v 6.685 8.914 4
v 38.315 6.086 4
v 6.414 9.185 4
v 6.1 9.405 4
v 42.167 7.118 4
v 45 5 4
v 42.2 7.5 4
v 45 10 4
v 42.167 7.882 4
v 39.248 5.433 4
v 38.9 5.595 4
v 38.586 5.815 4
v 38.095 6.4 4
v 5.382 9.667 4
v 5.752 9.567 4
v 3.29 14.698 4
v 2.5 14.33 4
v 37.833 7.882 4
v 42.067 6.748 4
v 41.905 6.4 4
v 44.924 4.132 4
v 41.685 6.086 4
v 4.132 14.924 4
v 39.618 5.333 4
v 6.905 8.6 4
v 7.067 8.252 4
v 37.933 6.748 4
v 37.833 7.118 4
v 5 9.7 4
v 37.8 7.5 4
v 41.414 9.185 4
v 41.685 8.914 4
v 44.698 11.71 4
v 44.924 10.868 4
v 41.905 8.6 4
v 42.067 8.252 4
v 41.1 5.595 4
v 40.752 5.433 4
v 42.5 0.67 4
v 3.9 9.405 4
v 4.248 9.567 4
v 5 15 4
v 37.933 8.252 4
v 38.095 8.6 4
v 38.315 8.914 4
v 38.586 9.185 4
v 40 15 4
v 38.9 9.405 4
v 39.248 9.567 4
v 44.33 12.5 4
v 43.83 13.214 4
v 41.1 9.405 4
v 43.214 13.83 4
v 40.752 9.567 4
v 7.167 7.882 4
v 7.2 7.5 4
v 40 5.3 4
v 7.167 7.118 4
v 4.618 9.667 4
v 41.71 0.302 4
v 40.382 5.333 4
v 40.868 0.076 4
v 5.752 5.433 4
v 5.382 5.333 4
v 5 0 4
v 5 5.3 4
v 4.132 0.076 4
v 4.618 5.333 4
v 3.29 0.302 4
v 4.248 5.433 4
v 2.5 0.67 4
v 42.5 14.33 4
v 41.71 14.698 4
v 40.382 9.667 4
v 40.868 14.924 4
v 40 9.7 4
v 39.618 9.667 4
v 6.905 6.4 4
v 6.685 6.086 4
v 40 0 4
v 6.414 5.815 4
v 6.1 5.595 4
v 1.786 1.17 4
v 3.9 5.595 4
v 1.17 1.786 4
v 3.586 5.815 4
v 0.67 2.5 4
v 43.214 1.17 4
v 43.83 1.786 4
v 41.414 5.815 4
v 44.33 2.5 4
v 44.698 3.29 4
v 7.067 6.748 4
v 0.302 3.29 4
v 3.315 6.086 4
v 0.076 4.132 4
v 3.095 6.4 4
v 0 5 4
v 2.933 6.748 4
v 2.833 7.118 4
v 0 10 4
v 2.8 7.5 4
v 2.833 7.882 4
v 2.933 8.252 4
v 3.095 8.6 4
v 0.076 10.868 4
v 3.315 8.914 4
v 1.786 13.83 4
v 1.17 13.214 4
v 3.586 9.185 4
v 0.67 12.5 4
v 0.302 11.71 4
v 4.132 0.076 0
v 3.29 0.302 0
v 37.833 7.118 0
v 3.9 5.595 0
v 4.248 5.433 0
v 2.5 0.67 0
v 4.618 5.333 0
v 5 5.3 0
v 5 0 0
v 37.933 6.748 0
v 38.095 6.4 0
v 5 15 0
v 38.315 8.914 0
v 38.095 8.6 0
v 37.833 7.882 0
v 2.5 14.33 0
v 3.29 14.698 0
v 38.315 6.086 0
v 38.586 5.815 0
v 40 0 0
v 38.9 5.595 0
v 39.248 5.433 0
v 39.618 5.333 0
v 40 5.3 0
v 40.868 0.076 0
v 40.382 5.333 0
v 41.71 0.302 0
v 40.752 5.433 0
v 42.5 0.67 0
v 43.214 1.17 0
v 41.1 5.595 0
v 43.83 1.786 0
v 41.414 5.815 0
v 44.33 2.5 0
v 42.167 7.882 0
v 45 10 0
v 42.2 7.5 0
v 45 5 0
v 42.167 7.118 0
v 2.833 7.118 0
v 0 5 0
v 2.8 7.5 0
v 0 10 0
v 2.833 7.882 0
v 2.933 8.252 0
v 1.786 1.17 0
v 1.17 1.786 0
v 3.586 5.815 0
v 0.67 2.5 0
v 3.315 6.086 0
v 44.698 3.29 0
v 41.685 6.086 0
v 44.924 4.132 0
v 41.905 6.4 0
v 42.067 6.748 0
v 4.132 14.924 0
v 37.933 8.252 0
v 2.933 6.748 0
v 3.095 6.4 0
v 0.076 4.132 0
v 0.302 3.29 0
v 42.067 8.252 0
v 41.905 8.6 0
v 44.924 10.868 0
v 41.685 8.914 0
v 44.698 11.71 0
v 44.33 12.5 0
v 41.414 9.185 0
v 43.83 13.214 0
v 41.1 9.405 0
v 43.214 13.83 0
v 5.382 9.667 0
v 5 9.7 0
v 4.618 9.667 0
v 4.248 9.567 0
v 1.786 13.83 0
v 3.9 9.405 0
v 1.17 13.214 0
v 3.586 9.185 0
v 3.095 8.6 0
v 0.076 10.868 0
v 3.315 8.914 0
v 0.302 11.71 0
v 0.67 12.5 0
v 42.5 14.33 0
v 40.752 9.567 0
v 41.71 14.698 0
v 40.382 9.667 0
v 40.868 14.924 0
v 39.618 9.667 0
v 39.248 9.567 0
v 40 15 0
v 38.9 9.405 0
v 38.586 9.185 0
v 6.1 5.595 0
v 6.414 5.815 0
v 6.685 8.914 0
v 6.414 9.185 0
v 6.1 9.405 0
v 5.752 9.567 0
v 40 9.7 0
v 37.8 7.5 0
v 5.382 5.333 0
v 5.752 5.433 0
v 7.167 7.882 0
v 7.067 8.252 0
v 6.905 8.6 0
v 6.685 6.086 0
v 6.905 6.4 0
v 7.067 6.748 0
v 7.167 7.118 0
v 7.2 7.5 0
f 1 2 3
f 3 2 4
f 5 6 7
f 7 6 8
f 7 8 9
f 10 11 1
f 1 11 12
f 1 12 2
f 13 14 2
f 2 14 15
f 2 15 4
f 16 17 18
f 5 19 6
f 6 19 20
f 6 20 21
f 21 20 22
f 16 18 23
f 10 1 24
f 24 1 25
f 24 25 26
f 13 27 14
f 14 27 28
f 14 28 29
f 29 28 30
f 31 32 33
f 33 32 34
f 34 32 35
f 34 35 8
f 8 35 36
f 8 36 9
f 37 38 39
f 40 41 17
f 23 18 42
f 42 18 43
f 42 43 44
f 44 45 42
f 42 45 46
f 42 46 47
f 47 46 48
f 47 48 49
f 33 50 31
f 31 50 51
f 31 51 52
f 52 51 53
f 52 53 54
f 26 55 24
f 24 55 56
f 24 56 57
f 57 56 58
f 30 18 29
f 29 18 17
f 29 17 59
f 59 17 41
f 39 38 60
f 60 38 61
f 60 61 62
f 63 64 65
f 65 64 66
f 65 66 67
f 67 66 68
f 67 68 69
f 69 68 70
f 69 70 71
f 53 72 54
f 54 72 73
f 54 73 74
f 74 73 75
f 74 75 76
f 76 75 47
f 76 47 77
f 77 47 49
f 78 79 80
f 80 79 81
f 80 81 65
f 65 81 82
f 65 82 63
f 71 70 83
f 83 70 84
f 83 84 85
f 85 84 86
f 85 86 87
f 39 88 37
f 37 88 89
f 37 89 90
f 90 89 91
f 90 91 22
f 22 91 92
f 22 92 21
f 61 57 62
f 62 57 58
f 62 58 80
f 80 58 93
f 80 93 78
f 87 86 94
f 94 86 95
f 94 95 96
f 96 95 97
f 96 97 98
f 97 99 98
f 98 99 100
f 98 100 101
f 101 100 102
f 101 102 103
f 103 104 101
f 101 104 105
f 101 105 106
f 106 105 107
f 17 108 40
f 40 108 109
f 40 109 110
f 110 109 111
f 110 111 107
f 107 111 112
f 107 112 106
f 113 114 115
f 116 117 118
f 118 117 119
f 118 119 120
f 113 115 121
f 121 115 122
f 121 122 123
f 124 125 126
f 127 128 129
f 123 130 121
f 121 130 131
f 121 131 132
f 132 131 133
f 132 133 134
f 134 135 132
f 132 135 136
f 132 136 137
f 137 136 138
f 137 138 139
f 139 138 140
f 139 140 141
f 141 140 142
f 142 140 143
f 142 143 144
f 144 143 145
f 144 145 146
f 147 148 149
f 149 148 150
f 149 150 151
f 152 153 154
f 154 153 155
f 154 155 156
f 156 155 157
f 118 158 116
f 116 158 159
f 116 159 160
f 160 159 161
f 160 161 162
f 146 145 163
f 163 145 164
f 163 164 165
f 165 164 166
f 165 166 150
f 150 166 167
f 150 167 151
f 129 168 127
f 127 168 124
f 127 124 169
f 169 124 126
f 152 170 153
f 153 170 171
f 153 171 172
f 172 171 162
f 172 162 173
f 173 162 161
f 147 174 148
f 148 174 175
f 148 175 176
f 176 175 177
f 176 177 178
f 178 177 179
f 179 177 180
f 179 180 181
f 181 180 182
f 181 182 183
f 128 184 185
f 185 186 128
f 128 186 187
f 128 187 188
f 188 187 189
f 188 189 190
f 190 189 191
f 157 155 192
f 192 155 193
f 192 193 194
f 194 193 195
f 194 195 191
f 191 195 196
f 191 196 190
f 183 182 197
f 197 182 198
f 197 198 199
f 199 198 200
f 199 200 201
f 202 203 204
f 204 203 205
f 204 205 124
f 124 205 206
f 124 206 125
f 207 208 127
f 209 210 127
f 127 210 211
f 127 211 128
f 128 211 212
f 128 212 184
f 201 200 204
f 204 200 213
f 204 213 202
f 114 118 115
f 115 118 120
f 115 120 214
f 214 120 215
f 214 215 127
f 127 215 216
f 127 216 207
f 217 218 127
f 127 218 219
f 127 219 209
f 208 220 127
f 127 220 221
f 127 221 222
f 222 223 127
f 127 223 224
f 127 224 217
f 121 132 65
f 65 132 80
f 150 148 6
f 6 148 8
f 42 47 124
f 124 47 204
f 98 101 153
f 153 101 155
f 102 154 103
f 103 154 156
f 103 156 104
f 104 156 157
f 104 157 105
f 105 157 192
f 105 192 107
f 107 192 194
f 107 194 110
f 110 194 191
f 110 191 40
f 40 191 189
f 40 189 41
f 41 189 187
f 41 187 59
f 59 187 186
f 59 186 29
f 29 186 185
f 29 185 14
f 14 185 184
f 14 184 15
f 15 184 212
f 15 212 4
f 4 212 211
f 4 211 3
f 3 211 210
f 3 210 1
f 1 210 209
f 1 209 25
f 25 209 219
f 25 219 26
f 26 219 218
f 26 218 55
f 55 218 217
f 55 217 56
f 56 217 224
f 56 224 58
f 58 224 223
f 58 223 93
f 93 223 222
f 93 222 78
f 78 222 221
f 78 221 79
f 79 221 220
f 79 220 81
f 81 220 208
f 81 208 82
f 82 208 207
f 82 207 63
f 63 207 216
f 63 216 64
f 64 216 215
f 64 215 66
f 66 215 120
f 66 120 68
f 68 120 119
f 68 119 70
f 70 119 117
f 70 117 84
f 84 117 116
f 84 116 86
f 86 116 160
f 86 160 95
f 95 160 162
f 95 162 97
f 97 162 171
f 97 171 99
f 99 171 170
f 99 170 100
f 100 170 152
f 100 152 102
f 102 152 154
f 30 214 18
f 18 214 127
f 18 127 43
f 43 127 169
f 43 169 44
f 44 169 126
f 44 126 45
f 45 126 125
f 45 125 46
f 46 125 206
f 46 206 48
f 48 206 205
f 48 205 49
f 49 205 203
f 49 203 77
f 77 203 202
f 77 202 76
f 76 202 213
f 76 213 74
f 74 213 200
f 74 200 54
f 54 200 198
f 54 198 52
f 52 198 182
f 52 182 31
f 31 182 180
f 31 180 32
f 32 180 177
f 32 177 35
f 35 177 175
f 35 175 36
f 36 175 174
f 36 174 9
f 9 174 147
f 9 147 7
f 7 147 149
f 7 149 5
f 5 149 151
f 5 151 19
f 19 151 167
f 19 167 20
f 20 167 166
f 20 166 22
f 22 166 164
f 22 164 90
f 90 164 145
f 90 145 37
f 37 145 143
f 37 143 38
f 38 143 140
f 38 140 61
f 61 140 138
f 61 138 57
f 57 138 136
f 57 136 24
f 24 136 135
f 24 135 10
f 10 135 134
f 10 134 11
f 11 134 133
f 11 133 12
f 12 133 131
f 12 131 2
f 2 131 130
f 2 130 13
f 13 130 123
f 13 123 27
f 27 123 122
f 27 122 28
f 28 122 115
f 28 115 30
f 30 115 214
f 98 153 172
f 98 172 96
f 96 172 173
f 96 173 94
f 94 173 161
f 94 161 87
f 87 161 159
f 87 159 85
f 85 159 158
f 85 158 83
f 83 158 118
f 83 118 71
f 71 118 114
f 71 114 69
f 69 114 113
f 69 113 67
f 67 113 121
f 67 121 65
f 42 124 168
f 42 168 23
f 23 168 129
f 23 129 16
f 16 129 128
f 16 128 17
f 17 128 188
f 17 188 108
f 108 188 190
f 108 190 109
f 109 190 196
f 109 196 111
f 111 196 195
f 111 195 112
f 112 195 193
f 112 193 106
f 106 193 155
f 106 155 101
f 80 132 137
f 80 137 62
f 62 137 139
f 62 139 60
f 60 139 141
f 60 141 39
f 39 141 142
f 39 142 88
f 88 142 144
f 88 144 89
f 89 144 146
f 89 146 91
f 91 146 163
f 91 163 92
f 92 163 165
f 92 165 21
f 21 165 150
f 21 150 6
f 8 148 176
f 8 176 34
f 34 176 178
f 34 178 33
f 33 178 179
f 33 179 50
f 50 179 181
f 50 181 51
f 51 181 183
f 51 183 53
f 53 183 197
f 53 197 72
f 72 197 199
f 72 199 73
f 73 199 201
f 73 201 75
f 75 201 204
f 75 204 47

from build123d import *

# Parameters (mm, degrees)
CROQUIS1_W              = 45
CROQUIS1_H              = 15
CROQUIS1_R              = 2.2
SALIENTE_EXTRUIR1_DEPTH = 4
REDONDEO1_R             = 5


with BuildPart() as part:
    # Croquis1 → Saliente-Extruir1 (new body)
    with BuildSketch(Plane.XY):
        with Locations((22.5, 7.5)):
            Rectangle(CROQUIS1_W, CROQUIS1_H)
        with Locations((5, 7.5)):
            Circle(CROQUIS1_R, mode=Mode.SUBTRACT)
        with Locations((40, 7.5)):
            Circle(CROQUIS1_R, mode=Mode.SUBTRACT)
    extrude(amount=SALIENTE_EXTRUIR1_DEPTH)

    # Redondeo1
    redondeo1_edges = [part.edges().sort_by_distance(p)[0] for p in [
        (0, 0, 2),
        (0, 15, 2),
        (45, 15, 2),
        (45, 0, 2),
    ]]
    fillet(redondeo1_edges, radius=REDONDEO1_R)


solid = part.part
